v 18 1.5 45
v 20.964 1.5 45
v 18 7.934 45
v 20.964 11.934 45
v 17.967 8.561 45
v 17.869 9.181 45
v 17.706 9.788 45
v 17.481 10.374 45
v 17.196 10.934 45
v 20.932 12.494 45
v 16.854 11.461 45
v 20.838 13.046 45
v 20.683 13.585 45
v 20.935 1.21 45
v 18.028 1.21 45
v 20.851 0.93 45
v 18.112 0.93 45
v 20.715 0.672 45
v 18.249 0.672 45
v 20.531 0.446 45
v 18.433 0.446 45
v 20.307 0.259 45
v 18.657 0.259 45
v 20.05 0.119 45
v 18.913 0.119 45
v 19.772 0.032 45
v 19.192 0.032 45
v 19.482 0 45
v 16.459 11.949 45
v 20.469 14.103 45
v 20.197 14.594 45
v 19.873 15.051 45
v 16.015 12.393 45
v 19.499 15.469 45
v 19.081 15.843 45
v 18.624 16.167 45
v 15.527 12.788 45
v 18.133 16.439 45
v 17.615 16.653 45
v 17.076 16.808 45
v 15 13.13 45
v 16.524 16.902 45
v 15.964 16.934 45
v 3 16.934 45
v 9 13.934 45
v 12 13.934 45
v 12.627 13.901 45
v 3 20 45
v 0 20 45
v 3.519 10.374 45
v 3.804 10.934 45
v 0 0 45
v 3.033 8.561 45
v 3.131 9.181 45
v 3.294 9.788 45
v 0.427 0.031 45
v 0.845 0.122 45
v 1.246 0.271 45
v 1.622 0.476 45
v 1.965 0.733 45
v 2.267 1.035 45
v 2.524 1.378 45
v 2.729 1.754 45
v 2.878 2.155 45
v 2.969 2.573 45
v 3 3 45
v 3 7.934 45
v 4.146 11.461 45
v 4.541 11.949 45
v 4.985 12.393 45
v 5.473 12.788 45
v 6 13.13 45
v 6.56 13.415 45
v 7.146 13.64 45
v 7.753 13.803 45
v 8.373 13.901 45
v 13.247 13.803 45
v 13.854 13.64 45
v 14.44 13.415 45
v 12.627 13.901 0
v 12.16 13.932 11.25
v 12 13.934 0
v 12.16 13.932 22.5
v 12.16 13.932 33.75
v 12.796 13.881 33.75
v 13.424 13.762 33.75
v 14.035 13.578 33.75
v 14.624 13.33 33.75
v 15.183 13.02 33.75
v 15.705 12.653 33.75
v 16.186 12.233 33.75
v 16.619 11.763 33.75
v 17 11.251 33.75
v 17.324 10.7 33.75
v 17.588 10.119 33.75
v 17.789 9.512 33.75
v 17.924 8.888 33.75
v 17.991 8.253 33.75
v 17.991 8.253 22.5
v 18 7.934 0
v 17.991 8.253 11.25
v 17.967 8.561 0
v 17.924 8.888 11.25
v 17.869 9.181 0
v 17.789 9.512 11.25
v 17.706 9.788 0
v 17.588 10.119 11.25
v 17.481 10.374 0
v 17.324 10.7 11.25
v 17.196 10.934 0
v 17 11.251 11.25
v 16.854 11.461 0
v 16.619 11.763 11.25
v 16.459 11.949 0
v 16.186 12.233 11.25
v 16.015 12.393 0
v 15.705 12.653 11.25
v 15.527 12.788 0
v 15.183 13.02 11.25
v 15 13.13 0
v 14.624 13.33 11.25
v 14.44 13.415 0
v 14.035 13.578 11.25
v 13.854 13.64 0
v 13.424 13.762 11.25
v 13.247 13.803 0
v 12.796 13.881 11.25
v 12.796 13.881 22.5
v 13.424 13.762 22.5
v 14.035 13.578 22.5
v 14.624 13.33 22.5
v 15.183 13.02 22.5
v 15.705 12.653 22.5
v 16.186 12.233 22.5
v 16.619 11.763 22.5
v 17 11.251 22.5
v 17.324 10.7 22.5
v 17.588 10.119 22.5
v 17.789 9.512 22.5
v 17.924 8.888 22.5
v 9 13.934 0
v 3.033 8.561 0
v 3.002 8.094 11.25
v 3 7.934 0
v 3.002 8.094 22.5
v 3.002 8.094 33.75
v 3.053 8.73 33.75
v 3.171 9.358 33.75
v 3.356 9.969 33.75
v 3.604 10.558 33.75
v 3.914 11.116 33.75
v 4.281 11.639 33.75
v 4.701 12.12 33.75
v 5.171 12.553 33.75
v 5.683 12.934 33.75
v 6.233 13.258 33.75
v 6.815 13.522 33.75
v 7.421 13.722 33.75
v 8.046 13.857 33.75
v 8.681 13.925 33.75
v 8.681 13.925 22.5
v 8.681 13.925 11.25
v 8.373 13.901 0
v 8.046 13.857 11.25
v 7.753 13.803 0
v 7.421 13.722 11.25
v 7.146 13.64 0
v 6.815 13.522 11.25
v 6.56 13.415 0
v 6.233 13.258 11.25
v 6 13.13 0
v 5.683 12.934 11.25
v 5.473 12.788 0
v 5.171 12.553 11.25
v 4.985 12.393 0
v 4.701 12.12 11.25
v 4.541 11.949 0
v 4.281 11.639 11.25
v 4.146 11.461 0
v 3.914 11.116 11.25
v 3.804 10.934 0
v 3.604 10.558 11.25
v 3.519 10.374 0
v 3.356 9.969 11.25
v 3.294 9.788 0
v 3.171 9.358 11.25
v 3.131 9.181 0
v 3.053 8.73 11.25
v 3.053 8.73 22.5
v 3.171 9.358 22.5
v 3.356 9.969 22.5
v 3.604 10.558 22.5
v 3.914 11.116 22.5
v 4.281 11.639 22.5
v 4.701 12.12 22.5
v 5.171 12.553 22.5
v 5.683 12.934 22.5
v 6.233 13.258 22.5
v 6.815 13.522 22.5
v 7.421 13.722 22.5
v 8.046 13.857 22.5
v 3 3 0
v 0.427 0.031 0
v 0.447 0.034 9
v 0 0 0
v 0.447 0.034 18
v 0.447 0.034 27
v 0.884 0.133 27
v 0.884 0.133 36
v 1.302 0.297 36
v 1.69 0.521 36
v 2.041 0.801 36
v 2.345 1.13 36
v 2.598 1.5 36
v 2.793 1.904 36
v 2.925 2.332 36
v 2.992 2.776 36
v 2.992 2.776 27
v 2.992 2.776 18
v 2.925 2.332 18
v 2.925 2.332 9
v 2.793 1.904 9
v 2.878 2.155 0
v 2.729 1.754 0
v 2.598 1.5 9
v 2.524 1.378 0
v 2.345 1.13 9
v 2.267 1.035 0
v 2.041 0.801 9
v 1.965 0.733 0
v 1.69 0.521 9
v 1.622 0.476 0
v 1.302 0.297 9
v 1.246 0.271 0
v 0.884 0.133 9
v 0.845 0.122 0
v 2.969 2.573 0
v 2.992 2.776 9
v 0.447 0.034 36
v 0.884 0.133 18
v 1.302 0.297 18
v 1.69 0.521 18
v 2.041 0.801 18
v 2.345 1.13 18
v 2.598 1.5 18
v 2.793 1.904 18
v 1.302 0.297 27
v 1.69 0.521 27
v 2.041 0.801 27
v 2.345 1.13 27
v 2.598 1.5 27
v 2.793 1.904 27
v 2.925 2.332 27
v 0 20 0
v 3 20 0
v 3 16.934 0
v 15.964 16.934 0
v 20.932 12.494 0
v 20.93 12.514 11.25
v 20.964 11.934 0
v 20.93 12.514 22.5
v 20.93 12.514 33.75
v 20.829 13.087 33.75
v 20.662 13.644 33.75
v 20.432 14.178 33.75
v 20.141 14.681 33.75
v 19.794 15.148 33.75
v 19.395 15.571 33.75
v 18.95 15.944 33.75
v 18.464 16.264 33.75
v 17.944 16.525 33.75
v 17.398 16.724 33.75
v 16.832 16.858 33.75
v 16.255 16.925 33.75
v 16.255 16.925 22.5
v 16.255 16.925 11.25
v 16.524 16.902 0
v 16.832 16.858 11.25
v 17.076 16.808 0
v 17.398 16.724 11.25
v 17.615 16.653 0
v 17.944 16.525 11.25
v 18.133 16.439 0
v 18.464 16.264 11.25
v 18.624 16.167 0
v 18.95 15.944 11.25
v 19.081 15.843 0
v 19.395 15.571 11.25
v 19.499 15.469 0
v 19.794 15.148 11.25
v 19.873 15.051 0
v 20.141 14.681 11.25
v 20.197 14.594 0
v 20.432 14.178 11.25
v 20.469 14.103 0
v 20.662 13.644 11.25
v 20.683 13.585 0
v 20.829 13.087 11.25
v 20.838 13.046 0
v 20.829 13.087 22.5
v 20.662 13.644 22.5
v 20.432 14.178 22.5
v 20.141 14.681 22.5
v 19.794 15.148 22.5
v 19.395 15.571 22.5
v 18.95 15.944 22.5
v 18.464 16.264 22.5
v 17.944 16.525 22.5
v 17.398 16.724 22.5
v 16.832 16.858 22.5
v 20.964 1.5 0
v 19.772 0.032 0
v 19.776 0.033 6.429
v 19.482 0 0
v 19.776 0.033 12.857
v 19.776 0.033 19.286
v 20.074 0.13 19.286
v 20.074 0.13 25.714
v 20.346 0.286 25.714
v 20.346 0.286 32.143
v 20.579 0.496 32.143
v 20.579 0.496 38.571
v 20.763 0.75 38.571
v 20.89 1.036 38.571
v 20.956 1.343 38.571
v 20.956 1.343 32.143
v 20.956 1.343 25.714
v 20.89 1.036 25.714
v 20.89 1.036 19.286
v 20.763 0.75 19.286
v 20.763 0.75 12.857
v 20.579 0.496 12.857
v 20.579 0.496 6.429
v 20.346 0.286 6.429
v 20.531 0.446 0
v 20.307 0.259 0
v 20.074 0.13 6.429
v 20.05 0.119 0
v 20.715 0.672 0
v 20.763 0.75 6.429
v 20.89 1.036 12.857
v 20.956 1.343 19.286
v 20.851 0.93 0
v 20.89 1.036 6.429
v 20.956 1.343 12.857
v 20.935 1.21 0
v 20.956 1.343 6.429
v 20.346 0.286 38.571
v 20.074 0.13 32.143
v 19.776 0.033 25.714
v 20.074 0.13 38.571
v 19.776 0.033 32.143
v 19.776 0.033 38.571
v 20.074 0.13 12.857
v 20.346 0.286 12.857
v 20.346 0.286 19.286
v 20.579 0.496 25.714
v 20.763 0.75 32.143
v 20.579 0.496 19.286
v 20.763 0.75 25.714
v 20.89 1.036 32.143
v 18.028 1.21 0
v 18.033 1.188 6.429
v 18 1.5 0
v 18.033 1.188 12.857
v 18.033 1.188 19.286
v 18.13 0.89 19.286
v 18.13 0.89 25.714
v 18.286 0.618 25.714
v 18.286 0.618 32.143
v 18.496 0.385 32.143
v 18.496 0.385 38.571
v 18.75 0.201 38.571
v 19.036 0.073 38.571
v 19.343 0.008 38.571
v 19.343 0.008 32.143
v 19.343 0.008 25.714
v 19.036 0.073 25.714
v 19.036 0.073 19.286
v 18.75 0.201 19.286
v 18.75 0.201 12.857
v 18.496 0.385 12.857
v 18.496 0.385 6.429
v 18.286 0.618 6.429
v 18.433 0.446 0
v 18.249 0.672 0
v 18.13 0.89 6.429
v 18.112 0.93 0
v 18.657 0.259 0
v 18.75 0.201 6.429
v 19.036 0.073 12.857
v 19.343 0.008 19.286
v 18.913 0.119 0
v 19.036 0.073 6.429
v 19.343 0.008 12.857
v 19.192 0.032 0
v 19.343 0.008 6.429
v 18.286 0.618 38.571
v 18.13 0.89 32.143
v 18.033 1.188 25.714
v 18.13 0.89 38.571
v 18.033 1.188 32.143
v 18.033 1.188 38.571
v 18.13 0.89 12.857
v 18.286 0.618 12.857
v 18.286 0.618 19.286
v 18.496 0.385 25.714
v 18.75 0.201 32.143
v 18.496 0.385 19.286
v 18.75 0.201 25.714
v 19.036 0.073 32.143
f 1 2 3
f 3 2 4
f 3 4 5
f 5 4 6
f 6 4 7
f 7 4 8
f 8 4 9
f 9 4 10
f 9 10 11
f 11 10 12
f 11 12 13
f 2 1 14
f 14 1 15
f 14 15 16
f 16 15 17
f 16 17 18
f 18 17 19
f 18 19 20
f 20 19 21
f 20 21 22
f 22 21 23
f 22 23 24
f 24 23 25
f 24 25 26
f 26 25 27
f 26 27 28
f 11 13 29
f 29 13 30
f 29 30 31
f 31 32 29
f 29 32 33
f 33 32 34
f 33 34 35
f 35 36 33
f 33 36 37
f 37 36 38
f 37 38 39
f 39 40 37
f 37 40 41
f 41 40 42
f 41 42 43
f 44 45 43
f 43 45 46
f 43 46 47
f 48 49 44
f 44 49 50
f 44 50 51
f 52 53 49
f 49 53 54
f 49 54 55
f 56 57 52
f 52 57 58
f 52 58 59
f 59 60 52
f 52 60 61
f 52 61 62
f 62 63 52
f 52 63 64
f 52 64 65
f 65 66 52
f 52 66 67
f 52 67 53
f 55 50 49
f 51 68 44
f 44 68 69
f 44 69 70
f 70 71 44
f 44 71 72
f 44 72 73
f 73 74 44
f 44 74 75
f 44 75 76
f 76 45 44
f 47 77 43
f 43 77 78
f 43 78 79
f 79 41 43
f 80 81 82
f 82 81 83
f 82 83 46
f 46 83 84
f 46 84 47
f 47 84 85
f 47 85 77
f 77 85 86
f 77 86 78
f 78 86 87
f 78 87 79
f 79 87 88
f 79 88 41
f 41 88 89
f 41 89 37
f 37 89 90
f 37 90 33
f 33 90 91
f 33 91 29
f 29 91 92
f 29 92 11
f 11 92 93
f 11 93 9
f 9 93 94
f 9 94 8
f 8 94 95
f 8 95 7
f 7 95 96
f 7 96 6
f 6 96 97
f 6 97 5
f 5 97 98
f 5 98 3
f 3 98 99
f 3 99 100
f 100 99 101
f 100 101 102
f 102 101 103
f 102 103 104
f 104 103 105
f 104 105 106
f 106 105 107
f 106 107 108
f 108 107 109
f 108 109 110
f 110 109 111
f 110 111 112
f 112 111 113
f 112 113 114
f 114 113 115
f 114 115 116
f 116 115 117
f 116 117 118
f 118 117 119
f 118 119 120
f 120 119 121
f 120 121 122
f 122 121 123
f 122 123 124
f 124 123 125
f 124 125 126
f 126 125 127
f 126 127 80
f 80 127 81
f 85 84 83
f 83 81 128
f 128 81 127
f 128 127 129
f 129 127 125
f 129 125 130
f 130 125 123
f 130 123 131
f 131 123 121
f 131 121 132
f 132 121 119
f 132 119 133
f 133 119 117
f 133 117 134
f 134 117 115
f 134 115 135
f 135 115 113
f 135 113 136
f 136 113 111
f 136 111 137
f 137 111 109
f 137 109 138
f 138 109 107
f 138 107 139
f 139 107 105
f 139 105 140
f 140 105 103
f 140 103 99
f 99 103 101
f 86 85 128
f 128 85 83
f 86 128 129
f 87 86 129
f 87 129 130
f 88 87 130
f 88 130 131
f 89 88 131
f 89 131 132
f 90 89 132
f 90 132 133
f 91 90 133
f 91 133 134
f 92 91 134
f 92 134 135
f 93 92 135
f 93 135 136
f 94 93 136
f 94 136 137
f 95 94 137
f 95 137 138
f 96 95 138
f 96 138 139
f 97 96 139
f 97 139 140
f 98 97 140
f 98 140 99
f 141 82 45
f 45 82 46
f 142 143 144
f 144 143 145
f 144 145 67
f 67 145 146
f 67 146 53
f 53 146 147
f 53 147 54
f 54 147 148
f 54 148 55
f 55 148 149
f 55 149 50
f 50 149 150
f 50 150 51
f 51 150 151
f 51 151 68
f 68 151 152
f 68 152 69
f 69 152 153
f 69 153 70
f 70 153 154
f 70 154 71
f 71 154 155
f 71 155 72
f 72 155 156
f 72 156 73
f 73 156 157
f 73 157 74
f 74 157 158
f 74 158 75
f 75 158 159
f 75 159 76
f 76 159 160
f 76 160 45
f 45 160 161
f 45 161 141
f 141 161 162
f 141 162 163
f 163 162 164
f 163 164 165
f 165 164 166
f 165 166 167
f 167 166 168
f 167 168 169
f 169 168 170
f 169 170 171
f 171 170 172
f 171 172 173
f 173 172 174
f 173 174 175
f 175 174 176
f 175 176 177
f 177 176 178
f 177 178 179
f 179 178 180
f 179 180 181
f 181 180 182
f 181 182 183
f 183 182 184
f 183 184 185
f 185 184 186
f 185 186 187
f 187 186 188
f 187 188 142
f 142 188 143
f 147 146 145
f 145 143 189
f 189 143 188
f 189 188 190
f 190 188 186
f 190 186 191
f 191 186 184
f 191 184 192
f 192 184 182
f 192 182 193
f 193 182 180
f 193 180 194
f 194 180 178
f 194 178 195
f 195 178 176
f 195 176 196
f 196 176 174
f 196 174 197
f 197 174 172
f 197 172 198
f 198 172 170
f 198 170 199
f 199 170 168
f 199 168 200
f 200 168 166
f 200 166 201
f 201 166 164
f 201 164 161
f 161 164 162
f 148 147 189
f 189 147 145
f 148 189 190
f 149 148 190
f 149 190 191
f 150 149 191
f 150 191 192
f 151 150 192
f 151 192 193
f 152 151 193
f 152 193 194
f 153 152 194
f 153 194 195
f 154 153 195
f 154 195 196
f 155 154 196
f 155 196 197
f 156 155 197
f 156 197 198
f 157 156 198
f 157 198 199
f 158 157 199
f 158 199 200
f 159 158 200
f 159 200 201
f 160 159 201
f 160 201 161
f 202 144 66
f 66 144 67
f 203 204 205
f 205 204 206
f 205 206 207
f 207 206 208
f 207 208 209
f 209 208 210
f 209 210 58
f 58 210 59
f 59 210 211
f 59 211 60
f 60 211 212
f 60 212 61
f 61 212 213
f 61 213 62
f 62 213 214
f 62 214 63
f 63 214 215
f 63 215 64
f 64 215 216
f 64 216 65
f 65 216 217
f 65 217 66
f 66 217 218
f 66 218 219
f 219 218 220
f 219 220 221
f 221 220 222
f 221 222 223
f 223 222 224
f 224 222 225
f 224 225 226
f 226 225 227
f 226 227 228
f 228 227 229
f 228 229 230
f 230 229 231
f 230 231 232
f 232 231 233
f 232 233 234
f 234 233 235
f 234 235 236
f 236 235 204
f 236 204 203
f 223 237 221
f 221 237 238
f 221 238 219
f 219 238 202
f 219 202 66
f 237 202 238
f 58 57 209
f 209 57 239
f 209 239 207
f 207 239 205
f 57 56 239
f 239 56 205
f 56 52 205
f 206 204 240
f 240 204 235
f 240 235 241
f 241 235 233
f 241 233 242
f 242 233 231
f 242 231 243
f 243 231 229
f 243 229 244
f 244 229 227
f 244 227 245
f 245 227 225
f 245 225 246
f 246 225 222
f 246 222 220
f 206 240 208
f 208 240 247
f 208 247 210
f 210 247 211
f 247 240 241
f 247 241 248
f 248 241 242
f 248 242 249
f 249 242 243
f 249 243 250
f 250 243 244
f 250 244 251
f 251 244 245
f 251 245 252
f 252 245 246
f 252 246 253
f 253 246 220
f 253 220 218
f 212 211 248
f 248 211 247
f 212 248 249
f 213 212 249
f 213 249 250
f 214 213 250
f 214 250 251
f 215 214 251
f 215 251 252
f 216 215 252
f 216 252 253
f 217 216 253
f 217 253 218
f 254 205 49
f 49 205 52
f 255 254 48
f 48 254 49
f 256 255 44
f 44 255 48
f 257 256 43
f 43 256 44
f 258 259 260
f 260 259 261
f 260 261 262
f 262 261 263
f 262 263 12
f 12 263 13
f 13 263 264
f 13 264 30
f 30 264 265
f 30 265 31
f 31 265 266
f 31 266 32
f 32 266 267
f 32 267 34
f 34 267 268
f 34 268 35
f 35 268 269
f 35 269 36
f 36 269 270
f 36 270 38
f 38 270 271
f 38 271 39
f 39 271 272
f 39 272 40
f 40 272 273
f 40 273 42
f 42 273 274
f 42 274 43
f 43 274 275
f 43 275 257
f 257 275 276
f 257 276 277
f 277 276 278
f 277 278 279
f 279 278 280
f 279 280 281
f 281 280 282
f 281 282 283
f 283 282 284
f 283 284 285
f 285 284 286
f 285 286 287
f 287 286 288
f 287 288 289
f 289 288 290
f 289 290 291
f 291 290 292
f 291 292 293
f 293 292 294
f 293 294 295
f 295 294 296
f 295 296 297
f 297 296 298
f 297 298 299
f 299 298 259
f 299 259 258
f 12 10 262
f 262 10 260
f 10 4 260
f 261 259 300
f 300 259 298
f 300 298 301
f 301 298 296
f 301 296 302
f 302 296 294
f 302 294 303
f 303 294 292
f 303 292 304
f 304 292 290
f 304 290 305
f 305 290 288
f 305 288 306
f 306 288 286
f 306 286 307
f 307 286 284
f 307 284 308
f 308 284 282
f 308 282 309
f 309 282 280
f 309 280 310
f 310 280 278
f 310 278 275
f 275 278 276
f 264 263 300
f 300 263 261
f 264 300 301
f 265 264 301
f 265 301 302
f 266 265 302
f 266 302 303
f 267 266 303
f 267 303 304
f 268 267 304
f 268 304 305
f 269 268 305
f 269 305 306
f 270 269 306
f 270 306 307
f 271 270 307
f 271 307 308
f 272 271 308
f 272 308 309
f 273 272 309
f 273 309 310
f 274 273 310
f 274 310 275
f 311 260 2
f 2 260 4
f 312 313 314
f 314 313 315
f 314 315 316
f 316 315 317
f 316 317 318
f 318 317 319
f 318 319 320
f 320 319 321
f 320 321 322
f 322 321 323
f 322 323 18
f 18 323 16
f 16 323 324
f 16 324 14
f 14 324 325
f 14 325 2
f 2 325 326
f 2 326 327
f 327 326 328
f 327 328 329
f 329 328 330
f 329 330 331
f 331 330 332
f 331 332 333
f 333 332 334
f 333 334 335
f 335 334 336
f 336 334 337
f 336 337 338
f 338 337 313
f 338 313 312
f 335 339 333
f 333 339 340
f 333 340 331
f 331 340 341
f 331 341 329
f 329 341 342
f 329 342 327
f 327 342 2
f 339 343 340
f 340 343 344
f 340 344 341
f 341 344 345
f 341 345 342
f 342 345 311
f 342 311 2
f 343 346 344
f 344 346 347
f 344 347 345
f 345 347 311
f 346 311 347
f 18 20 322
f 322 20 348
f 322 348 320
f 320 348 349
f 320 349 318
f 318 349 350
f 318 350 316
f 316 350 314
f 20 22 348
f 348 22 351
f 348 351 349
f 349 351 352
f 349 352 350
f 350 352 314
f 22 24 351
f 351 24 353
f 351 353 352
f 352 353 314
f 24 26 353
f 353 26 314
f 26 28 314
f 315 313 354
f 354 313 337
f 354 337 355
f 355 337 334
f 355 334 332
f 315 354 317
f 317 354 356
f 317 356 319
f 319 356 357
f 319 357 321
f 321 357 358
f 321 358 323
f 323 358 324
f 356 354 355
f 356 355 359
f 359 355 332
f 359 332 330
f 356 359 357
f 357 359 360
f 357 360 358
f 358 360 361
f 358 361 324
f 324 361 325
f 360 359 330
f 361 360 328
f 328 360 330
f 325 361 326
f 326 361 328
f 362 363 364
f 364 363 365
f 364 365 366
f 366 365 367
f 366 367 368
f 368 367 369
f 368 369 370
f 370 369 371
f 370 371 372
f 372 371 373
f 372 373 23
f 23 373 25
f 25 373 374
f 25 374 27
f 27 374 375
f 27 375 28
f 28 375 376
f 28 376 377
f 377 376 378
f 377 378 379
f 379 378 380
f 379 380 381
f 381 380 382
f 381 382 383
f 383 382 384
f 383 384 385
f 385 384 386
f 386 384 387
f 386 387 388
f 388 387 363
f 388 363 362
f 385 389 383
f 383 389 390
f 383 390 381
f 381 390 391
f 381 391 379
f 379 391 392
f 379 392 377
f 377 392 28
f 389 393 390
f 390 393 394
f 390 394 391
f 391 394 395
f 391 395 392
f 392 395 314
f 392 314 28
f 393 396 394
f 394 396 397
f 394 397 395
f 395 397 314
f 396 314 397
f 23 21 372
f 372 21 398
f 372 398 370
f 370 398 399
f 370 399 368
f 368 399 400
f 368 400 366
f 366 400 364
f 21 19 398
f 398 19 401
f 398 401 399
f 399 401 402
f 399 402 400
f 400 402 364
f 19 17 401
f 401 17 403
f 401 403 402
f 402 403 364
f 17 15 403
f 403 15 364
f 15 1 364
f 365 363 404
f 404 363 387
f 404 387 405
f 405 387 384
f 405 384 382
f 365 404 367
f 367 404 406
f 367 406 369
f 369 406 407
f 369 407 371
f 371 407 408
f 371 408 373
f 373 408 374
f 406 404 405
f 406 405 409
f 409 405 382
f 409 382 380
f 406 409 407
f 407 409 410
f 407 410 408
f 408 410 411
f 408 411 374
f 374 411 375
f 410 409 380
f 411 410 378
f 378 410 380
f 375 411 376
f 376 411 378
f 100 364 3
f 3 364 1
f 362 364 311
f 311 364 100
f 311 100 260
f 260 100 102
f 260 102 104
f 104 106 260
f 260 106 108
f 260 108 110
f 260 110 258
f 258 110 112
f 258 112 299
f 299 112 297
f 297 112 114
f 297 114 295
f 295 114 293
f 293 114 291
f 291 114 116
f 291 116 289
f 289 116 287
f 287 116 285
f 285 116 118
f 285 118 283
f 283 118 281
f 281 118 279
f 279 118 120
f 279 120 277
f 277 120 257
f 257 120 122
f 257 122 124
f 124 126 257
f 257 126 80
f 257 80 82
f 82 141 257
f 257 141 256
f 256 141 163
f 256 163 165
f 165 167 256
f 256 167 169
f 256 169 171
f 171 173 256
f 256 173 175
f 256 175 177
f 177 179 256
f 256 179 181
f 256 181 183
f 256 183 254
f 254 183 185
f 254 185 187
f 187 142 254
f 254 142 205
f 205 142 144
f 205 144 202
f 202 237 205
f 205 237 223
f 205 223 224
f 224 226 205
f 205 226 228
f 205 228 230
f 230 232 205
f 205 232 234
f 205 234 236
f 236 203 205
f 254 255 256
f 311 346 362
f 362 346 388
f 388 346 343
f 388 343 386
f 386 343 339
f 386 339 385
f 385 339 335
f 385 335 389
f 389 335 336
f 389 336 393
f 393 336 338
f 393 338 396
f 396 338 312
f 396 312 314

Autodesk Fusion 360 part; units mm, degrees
sketch "Sketch1" plane through (0, 0, 0) normal (0, 0, 1) x (1, 0, 0)
  line L0 (0, 20) -> (0, 0)
  line L1 (0, 0) -> (0, 0)
  line L2 (3, 3) -> (3, 7.9338)
  line L3 (9, 13.9338) -> (12, 13.9338)
  line L4 (18, 7.9338) -> (18, 1.5)
  line L5 (19.5, 0) -> (19.4638, 0)
  line L6 (20.9638, 1.5) -> (20.9638, 11.9338)
  line L7 (15.9638, 16.9338) -> (3, 16.9338)
  line L8 (3, 16.9338) -> (3, 20)
  line L9 (3, 20) -> (0, 20)
  arc A0 (20.9638, 11.9338) -> (15.9638, 16.9338) centre (15.9638, 11.9338) ccw
  arc A1 (18, 7.9338) -> (12, 13.9338) centre (12, 7.9338) ccw
  arc A2 (18, 1.5) -> (19.5, 0) centre (19.5, 1.5) ccw
  arc A3 (19.4638, 0) -> (20.9638, 1.5) centre (19.4638, 1.5) ccw
  arc A4 (9, 13.9338) -> (3, 7.9338) centre (9, 7.9338) ccw
  arc A5 (0, 0) -> (3, 3) centre (0, 3) ccw
  dimension "d1" = 5
  dimension "d2" = 6
  dimension "d3" = 1.5
  dimension "d4" = 1.5
  dimension "d5" = 3
  dimension "d6" = 3
  dimension "d7" = 2.9638
  dimension "d9" = 6
  dimension "d10" = 3
  dimension "d11" = 15
  dimension "d13" = 20
extrude "Extrude1" add sketch "Sketch1" along normal blind 5
extrude "Extrude2" add 1 faces at (1.0204, 9.5959, 5) along direction (0, 0, 1) blind 40
